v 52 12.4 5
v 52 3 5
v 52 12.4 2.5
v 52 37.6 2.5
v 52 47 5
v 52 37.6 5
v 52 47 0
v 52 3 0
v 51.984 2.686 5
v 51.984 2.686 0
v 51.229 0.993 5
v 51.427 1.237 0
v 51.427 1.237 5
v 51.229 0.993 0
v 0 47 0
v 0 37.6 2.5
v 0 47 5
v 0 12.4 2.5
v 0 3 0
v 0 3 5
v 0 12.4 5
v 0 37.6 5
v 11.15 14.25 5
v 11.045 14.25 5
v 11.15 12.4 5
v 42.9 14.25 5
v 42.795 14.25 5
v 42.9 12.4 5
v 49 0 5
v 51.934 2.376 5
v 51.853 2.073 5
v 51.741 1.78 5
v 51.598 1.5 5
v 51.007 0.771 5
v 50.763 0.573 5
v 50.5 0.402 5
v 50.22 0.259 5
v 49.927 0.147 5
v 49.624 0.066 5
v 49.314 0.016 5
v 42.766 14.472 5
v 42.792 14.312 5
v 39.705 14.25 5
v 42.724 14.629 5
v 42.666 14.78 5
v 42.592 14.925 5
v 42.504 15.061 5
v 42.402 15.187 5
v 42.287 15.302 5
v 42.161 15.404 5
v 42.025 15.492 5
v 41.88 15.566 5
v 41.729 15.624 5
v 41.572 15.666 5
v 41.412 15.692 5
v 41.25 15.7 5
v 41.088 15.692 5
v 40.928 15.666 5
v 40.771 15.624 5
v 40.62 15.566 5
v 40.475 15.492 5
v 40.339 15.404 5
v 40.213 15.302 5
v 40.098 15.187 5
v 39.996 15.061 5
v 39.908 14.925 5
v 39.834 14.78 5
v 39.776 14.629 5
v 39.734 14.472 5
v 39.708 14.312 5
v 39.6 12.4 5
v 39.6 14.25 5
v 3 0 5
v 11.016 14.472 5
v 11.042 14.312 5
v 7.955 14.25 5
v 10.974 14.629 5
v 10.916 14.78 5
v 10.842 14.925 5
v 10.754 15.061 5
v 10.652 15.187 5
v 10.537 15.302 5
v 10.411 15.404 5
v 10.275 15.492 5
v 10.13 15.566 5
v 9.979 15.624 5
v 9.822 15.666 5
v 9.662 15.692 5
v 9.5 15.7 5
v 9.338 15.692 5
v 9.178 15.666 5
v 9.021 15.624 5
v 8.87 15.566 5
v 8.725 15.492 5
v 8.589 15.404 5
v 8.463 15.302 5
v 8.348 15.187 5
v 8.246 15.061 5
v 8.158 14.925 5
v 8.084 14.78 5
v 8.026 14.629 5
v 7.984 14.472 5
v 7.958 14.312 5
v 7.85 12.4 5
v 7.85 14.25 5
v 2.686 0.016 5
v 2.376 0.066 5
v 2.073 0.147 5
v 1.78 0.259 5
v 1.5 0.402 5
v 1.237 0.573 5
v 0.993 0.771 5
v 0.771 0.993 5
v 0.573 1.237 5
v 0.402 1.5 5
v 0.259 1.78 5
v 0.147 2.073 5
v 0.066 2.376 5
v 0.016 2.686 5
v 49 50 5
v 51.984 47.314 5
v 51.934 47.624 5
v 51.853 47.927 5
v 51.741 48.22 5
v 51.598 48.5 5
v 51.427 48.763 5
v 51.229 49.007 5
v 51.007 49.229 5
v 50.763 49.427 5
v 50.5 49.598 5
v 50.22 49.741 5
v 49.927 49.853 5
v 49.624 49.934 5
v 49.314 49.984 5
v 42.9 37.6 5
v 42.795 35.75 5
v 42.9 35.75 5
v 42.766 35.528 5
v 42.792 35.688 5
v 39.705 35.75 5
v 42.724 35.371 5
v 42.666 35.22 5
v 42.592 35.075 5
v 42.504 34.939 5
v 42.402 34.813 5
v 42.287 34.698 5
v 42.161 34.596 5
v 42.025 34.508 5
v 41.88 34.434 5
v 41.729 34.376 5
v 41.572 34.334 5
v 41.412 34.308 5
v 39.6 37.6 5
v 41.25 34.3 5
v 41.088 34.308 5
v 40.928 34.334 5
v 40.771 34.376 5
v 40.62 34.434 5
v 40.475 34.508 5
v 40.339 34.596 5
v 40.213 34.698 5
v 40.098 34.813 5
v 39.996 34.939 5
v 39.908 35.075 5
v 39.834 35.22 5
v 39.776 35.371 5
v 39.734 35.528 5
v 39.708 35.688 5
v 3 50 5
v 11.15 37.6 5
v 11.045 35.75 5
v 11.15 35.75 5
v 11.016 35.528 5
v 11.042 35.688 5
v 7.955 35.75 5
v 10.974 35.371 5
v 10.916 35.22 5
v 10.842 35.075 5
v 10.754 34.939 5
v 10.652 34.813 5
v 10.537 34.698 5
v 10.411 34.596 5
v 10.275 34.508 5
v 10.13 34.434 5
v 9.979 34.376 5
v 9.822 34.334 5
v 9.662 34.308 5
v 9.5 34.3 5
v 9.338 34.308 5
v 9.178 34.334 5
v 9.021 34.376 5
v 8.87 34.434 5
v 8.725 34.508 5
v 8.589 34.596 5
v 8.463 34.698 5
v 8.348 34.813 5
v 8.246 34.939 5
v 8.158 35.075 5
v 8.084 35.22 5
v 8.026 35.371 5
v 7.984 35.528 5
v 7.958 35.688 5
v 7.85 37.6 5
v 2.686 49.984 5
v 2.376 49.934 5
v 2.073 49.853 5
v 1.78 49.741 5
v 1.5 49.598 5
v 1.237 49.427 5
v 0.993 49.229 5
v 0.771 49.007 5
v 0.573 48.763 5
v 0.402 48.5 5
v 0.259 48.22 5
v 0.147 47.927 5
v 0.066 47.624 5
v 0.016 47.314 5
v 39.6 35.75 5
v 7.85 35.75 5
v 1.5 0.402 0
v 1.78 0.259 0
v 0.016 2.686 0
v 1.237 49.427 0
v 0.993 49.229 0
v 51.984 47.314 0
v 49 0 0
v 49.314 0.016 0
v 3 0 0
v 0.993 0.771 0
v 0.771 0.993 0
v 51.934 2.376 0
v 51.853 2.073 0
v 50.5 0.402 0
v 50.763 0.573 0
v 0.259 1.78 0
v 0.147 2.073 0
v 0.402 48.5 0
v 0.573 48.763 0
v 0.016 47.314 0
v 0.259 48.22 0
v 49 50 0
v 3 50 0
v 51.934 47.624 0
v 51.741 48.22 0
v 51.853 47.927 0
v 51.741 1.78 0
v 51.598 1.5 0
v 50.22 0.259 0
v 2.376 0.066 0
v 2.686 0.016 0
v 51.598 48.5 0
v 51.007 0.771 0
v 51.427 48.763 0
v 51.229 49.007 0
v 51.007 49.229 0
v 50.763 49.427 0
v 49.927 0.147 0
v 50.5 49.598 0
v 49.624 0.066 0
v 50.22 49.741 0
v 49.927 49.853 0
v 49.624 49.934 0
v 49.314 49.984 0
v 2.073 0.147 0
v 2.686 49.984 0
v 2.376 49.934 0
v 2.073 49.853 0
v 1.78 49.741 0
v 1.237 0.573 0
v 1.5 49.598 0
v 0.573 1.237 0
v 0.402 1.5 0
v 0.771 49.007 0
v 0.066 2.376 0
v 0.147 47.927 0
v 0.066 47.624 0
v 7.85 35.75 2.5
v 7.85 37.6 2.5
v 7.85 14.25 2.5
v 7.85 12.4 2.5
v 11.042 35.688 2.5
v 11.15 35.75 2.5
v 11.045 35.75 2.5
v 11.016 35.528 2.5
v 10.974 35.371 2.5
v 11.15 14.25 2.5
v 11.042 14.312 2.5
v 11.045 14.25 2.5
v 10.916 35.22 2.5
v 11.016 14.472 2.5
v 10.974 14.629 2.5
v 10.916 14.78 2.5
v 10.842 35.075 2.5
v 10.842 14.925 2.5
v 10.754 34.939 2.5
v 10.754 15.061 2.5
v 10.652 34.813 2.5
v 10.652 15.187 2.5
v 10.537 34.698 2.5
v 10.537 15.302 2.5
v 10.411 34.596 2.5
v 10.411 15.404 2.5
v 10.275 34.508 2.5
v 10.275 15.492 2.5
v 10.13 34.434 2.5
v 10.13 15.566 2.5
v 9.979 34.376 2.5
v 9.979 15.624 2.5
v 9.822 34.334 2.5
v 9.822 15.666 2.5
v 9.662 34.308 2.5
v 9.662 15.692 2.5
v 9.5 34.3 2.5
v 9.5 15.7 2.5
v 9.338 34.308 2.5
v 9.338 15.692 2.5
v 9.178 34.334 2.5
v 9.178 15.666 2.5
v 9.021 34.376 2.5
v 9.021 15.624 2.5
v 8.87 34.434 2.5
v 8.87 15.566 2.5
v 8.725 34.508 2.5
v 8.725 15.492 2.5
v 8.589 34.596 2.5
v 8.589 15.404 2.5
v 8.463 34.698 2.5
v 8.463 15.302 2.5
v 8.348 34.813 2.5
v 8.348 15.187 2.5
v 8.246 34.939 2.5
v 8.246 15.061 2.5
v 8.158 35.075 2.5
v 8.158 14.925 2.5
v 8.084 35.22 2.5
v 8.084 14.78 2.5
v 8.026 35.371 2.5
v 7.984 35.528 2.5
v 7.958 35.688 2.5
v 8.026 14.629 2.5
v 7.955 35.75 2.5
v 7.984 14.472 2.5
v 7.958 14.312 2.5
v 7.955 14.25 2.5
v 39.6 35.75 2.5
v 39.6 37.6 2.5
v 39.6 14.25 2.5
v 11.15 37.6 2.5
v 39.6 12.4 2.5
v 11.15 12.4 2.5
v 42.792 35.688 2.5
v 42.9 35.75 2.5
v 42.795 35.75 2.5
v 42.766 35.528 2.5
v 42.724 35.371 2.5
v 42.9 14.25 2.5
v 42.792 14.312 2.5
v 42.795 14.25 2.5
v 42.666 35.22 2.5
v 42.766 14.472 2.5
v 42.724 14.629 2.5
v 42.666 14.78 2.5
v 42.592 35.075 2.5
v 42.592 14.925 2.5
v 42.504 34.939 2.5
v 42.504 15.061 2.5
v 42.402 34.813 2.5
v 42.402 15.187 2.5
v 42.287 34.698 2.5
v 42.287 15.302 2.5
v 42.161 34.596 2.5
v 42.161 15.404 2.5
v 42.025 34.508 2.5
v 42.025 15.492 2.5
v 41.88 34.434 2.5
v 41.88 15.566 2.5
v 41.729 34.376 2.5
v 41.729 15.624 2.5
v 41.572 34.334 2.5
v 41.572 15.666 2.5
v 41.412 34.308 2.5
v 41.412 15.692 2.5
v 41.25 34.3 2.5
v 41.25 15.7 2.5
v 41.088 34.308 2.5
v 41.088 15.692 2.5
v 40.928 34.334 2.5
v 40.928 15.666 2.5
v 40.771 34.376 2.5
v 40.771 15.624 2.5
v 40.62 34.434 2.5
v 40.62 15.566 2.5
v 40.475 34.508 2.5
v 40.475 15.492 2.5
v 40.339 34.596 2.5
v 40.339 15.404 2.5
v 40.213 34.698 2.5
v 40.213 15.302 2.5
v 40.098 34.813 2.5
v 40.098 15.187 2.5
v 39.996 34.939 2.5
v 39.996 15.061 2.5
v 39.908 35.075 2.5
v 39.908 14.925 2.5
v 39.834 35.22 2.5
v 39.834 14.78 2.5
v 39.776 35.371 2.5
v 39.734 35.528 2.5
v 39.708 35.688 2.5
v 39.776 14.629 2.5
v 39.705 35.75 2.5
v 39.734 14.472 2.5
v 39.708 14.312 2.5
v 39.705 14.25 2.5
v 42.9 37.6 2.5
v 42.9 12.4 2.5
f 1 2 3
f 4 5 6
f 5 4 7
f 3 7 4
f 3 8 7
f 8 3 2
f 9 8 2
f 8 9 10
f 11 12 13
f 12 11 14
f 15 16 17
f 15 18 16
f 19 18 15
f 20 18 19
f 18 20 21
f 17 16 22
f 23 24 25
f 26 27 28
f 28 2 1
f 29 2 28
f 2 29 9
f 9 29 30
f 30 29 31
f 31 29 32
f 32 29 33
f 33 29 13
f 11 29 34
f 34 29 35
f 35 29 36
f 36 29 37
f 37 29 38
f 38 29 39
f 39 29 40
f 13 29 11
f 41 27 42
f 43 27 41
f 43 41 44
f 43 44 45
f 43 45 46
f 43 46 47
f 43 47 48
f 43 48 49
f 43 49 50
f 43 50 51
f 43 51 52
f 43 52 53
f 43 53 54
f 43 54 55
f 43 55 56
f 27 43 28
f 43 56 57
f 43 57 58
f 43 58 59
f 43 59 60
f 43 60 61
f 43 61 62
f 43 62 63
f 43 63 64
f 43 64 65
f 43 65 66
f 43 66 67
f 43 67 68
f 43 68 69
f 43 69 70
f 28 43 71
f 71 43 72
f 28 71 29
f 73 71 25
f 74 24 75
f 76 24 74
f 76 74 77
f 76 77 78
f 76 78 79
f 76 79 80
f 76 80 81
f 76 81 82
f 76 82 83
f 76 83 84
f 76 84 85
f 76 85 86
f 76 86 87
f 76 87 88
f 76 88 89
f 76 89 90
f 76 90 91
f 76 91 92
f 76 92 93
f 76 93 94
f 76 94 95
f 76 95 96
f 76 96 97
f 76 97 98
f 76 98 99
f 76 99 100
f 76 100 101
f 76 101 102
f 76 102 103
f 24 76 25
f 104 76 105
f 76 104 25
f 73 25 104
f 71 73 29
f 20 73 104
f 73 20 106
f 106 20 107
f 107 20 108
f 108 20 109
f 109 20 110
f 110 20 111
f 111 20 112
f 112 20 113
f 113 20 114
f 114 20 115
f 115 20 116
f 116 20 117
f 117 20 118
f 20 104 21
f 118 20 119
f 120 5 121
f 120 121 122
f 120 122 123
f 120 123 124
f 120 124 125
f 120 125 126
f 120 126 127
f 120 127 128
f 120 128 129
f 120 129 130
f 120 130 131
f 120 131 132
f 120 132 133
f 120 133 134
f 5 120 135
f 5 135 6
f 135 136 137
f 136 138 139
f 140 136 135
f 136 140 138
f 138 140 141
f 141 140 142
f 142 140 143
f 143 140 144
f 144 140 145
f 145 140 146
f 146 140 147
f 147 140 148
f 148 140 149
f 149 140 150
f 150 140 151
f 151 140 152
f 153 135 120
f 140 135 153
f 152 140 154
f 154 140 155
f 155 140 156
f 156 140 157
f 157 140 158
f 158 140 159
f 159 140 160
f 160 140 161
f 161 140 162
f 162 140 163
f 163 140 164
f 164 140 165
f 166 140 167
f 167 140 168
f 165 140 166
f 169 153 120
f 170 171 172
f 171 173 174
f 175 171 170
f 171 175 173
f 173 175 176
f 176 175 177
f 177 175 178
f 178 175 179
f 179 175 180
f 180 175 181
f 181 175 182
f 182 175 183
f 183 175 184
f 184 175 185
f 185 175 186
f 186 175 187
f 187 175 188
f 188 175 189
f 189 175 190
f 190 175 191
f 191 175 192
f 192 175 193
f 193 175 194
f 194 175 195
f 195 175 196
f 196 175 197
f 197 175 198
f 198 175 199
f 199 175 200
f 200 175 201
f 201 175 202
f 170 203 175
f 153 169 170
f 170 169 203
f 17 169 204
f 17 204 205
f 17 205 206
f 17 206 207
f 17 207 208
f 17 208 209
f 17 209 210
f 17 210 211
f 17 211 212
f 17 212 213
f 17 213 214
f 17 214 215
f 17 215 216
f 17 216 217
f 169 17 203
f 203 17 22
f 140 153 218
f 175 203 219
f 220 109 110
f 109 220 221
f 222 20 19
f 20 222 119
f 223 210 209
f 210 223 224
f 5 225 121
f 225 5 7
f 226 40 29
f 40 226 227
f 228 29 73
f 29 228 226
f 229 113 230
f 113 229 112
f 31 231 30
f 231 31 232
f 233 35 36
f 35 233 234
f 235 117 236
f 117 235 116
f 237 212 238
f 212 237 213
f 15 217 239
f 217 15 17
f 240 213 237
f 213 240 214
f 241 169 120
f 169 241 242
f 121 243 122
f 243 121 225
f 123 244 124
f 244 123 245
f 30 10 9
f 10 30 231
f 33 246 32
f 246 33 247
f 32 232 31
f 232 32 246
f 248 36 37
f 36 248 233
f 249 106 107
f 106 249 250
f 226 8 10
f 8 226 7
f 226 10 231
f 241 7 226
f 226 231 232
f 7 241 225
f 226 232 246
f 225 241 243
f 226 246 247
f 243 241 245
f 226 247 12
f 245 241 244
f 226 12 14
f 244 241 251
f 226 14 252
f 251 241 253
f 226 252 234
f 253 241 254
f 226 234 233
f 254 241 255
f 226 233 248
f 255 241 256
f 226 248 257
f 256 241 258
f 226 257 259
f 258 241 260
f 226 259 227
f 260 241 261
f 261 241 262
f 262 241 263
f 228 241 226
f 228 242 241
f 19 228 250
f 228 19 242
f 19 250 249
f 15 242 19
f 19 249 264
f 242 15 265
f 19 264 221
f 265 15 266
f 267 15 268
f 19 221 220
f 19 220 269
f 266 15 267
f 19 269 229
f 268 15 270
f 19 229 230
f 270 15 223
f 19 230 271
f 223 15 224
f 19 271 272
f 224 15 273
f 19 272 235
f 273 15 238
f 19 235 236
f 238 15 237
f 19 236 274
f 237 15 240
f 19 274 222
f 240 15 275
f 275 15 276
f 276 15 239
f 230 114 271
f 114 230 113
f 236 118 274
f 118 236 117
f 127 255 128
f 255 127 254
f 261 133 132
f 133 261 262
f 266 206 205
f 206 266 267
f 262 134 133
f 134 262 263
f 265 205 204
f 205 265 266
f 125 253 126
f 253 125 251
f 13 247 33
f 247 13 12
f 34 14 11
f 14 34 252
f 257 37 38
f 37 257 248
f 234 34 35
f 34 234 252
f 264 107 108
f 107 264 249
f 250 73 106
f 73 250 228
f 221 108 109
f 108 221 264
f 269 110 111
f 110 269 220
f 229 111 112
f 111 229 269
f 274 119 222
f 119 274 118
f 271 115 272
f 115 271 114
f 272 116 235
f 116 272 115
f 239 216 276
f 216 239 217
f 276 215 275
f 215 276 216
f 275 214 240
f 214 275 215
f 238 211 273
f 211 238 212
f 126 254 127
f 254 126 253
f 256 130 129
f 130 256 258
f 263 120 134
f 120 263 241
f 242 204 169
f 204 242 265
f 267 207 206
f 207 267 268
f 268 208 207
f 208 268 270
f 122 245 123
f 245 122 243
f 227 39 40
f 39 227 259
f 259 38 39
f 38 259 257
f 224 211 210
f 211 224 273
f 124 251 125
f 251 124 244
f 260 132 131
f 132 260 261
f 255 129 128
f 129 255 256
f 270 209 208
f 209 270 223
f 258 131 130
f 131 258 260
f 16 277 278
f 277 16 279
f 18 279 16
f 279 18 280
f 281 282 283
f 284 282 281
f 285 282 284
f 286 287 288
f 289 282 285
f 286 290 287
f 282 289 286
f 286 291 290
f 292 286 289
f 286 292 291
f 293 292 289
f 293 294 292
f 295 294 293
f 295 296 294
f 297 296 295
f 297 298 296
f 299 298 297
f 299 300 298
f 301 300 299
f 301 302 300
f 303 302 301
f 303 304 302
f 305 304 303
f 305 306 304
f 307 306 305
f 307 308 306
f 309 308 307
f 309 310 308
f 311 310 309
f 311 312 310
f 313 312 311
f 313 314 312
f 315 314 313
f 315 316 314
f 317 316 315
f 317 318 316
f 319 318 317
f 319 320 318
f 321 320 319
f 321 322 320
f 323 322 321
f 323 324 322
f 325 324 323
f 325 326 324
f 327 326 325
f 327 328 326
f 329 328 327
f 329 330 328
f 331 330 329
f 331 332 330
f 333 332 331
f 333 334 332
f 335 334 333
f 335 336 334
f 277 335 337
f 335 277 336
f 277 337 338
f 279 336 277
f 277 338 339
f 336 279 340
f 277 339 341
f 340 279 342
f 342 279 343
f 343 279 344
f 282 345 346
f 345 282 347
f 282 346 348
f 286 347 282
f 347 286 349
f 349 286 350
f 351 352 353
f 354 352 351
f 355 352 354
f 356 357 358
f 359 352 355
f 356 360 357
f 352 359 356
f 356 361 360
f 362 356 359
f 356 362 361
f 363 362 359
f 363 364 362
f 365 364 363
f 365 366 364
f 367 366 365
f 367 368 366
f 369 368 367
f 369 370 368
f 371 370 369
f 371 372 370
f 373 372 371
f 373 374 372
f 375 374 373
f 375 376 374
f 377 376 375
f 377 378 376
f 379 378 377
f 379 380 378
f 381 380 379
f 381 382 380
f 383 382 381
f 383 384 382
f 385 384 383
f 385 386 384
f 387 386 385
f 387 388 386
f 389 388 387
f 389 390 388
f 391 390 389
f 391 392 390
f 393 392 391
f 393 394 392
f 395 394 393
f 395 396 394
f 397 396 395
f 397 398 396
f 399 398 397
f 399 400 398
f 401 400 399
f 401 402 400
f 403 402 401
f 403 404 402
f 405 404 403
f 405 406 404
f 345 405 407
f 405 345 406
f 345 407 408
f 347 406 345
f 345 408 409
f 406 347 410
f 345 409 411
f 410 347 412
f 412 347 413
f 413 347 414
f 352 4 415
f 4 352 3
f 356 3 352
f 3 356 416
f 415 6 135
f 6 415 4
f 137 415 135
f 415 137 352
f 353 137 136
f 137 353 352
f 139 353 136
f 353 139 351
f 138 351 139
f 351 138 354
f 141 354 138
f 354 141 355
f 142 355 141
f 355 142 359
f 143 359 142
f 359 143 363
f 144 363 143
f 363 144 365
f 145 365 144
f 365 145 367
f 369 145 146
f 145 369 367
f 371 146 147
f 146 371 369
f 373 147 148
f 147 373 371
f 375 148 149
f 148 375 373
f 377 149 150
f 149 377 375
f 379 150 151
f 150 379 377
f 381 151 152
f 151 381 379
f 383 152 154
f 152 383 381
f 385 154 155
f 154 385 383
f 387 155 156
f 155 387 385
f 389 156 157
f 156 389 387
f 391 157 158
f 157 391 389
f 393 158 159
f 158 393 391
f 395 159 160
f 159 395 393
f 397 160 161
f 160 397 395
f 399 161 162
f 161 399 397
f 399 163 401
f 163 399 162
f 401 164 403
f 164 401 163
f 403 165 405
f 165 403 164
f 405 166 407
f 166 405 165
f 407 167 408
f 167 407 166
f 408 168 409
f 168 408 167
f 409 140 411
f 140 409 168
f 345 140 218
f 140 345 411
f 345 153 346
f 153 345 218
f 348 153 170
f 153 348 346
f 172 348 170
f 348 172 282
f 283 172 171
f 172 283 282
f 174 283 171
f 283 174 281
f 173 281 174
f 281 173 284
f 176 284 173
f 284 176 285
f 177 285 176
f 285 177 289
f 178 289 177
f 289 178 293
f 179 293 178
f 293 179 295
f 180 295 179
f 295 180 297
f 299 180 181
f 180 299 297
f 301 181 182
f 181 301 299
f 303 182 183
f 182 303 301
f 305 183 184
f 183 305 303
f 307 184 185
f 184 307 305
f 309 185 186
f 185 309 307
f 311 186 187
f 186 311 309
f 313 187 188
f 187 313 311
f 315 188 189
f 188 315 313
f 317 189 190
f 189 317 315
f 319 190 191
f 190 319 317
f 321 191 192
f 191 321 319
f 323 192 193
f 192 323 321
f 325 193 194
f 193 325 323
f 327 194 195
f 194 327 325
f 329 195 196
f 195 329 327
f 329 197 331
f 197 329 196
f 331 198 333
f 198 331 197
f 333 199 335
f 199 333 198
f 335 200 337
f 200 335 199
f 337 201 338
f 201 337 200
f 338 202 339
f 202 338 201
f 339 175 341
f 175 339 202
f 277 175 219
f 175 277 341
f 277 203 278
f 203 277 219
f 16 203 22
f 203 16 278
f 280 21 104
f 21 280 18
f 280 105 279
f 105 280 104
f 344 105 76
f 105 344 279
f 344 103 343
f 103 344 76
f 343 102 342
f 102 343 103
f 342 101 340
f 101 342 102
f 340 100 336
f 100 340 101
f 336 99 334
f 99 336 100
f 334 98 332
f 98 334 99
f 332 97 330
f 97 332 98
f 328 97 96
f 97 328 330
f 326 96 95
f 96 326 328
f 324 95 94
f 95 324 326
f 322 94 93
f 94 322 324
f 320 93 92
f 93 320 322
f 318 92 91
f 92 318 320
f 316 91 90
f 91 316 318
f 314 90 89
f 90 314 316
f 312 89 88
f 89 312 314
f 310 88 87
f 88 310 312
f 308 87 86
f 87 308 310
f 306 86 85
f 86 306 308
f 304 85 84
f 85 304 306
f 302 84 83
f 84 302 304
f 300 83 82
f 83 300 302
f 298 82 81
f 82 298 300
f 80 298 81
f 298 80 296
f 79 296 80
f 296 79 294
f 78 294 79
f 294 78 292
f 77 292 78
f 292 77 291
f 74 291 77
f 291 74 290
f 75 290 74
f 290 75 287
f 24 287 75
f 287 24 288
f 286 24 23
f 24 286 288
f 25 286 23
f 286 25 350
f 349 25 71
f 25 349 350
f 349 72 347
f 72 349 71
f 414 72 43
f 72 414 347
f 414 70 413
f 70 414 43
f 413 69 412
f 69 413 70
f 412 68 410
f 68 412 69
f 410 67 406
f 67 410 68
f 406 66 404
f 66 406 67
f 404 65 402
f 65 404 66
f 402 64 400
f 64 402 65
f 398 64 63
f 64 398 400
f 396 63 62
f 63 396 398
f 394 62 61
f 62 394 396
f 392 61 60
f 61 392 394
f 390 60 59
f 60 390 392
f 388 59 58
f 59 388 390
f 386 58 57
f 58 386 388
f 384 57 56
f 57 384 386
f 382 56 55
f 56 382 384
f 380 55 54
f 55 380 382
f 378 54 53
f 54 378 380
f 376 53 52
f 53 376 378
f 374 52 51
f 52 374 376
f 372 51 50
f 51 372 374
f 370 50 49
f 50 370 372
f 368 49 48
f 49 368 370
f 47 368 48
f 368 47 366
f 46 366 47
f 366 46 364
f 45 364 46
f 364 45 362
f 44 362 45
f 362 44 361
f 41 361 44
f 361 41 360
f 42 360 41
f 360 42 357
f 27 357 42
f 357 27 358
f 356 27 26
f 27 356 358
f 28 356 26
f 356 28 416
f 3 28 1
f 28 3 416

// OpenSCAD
$fn=60;

//to fit motor mounting bracket: https://www.pololu.com/file/download/2676-bracket-dimensions.pdf?file_id=0J825

tolerance = 0.1;
offsetX1 = 9.5;
offsetX2 = offsetX1 + 6.35 * 5 ;
offsetY1 = (25-21.7)/2;
offsetY2 = 25 - offsetY1;
d=3.3;
r=3.3/2 - tolerance;

module neg() {
    difference() {
        translate([0,-tolerance])square([52,25+2*tolerance]);
        translate([offsetX1,offsetY1-r]) square(d, true);
        translate([offsetX1,offsetY1]) circle(r);
        translate([offsetX2,offsetY1-r]) square(d, true);
        translate([offsetX2,offsetY1]) circle(r);
        translate([offsetX1,offsetY2+r]) square(d, true);
        translate([offsetX1,offsetY2]) circle(r);
        translate([offsetX2,offsetY2+r]) square(d, true);
        translate([offsetX2,offsetY2]) circle(r);
    }
}

difference() {
    minkowski() {
        translate([3,3,0]) cube([46,44,4]);
        cylinder(r=3,h=1);
    }
    translate([0,12.5,2.5]) linear_extrude(h=3) neg();
}
